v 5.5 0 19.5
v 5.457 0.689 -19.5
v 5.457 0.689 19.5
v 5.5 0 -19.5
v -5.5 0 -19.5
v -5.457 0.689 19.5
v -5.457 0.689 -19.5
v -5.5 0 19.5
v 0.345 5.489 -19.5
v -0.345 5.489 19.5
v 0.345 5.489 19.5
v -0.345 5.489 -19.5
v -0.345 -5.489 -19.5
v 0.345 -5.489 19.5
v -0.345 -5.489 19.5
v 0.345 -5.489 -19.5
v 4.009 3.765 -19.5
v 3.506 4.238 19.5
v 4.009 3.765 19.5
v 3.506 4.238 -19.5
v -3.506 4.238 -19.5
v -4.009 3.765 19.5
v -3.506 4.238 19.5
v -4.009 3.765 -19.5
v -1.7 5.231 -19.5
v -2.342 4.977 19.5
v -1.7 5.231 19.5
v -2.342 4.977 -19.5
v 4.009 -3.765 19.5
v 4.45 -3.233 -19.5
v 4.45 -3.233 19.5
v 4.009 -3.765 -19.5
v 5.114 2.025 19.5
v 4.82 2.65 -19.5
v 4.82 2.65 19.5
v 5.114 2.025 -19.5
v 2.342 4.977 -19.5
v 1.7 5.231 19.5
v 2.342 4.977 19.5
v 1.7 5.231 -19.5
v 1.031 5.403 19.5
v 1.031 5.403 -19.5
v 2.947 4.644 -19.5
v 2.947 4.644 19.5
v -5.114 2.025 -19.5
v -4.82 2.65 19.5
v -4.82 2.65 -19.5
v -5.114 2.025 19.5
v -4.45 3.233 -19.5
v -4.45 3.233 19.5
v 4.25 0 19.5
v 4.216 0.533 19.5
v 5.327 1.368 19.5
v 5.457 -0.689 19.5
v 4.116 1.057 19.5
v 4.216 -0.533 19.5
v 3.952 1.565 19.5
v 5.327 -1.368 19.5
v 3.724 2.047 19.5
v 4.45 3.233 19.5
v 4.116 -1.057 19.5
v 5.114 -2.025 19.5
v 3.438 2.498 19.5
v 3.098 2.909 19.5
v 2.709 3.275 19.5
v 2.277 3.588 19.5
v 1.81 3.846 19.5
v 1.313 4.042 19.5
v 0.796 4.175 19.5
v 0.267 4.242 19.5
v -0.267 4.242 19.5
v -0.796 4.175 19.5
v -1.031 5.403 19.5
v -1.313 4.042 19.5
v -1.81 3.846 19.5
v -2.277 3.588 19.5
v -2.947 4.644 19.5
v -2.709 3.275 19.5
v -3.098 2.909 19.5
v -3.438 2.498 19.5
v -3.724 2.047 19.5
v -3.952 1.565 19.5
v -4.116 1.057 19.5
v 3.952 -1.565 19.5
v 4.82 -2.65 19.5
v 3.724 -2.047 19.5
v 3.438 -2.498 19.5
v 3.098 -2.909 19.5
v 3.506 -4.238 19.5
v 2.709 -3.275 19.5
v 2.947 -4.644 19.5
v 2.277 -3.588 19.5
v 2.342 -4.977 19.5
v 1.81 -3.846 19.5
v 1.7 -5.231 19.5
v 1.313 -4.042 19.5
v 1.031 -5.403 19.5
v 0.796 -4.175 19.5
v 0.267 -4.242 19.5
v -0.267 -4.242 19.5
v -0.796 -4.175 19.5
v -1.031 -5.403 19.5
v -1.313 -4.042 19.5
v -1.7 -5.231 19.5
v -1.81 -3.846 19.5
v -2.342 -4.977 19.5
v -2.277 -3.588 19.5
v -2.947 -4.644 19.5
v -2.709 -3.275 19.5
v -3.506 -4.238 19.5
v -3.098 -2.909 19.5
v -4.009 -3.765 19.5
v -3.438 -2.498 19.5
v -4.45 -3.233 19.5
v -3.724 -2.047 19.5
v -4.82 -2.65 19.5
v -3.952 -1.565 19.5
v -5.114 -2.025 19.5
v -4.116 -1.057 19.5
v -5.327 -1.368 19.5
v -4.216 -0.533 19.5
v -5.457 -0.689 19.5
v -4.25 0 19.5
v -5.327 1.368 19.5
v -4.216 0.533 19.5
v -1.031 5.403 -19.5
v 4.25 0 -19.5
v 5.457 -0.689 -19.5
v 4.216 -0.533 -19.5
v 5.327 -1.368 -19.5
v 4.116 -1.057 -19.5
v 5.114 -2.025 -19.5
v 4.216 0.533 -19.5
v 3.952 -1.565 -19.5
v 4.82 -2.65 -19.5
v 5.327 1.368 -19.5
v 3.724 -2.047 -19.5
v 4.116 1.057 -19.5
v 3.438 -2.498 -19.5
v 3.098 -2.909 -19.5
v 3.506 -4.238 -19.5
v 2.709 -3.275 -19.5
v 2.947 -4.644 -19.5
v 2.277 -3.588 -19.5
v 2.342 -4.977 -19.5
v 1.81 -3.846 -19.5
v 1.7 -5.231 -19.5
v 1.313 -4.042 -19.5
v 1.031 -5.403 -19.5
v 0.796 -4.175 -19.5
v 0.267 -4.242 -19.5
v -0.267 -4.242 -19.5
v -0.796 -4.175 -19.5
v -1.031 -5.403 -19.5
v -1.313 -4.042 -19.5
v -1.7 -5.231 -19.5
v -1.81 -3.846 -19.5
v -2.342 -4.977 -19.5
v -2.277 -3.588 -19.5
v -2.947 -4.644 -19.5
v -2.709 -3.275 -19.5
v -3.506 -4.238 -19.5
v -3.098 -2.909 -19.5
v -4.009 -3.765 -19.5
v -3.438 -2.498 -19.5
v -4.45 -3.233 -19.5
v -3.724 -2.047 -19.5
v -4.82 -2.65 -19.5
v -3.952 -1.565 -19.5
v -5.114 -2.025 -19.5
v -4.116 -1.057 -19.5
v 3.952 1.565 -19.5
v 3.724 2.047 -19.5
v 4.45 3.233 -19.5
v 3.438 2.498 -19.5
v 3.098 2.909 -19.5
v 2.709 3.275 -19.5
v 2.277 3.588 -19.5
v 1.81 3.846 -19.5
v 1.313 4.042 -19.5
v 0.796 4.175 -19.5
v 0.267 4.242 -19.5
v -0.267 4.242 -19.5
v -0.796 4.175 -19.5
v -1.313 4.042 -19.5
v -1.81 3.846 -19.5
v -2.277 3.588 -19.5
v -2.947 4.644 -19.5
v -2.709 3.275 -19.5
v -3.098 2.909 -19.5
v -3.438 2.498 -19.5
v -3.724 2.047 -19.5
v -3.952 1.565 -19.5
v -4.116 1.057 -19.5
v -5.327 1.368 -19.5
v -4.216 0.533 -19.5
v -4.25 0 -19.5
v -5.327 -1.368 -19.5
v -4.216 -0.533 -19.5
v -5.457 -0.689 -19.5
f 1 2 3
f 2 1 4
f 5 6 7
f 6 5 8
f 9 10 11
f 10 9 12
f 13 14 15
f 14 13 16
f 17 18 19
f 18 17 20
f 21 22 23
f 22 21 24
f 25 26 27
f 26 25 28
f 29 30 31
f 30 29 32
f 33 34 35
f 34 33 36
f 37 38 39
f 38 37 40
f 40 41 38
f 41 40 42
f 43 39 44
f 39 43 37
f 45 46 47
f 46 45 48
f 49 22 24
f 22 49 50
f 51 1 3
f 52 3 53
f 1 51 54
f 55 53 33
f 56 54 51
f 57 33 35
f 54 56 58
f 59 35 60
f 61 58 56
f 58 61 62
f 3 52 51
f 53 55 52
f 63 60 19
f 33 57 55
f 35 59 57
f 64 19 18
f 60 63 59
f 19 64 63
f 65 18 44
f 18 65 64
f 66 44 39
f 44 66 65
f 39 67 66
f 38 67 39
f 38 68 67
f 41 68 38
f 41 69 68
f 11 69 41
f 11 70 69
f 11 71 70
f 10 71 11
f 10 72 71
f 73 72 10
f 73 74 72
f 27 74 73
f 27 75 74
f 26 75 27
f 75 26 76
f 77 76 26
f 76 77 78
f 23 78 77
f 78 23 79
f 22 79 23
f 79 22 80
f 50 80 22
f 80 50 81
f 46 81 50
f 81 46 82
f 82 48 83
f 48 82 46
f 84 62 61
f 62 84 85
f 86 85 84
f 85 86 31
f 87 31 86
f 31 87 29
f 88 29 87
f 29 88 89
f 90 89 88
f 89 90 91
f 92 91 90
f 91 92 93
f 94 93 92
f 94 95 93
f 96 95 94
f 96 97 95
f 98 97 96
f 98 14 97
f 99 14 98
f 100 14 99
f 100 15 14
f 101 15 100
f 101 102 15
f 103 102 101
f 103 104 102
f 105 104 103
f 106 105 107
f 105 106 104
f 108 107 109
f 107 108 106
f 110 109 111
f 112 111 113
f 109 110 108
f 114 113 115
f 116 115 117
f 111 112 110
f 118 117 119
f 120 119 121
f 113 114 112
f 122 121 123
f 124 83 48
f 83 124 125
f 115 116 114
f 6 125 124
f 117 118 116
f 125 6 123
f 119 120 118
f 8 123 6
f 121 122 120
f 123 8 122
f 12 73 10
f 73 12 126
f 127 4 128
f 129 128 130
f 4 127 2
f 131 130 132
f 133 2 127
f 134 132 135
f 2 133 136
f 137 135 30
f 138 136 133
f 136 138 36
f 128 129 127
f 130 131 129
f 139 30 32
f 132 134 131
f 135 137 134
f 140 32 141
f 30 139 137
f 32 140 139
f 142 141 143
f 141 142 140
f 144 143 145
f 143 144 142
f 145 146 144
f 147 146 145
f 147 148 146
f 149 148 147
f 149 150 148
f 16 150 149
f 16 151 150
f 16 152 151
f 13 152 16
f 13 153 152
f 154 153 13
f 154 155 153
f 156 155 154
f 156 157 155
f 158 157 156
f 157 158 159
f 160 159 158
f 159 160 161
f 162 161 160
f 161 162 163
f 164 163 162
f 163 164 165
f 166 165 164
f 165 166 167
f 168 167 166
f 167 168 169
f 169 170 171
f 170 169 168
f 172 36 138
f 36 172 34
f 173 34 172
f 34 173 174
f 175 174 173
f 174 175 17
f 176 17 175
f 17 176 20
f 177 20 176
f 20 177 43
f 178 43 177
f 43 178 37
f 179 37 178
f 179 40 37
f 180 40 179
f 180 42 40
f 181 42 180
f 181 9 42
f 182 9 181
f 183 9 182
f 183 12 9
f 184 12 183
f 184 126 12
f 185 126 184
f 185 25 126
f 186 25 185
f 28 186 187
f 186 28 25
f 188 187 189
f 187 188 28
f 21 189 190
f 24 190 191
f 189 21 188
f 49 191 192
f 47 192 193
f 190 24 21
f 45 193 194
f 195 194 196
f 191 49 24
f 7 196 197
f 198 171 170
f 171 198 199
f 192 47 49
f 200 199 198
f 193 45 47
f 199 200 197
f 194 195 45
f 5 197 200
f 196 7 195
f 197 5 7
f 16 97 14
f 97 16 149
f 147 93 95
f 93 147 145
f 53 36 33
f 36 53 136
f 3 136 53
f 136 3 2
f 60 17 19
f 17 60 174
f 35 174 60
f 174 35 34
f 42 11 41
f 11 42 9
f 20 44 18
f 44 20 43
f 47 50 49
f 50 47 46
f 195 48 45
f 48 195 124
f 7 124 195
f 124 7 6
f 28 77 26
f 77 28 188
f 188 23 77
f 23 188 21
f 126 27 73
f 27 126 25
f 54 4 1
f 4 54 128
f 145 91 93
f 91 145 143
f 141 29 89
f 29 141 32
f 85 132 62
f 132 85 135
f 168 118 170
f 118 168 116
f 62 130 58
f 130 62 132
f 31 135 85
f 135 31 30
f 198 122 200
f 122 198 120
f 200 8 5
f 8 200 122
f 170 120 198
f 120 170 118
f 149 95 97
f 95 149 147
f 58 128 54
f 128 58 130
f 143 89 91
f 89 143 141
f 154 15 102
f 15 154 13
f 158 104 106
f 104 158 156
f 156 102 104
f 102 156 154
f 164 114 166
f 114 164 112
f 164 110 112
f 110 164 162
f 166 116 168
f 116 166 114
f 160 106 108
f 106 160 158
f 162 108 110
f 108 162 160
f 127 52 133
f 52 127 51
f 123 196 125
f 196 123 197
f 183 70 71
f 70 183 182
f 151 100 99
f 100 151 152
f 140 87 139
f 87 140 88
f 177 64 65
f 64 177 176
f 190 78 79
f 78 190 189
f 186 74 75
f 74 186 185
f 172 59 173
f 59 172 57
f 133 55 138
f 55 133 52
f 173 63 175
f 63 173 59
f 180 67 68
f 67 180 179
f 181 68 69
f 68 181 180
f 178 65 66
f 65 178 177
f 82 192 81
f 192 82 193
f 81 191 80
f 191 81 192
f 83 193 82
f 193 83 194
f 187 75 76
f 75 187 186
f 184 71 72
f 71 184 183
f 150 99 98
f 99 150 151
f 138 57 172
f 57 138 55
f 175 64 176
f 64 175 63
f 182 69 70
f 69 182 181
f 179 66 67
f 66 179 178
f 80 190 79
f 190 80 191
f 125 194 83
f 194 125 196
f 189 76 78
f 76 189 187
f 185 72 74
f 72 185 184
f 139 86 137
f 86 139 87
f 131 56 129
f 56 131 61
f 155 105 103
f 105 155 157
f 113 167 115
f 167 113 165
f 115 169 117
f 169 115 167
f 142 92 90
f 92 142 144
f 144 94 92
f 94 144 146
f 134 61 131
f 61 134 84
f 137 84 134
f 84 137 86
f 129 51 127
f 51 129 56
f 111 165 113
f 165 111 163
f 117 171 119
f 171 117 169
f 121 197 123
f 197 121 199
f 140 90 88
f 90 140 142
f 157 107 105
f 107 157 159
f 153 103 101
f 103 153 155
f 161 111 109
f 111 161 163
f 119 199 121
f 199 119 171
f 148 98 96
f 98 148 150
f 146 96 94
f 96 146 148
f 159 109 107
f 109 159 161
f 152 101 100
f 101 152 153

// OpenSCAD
$fn = 50;


difference() {
	union() {
		translate(v = [0, 0, -19.5000000000]) {
			cylinder(h = 39, r = 5.5000000000);
		}
	}
	union() {
		translate(v = [0, 0, -100.0000000000]) {
			cylinder(h = 200, r = 4.2500000000);
		}
	}
}
